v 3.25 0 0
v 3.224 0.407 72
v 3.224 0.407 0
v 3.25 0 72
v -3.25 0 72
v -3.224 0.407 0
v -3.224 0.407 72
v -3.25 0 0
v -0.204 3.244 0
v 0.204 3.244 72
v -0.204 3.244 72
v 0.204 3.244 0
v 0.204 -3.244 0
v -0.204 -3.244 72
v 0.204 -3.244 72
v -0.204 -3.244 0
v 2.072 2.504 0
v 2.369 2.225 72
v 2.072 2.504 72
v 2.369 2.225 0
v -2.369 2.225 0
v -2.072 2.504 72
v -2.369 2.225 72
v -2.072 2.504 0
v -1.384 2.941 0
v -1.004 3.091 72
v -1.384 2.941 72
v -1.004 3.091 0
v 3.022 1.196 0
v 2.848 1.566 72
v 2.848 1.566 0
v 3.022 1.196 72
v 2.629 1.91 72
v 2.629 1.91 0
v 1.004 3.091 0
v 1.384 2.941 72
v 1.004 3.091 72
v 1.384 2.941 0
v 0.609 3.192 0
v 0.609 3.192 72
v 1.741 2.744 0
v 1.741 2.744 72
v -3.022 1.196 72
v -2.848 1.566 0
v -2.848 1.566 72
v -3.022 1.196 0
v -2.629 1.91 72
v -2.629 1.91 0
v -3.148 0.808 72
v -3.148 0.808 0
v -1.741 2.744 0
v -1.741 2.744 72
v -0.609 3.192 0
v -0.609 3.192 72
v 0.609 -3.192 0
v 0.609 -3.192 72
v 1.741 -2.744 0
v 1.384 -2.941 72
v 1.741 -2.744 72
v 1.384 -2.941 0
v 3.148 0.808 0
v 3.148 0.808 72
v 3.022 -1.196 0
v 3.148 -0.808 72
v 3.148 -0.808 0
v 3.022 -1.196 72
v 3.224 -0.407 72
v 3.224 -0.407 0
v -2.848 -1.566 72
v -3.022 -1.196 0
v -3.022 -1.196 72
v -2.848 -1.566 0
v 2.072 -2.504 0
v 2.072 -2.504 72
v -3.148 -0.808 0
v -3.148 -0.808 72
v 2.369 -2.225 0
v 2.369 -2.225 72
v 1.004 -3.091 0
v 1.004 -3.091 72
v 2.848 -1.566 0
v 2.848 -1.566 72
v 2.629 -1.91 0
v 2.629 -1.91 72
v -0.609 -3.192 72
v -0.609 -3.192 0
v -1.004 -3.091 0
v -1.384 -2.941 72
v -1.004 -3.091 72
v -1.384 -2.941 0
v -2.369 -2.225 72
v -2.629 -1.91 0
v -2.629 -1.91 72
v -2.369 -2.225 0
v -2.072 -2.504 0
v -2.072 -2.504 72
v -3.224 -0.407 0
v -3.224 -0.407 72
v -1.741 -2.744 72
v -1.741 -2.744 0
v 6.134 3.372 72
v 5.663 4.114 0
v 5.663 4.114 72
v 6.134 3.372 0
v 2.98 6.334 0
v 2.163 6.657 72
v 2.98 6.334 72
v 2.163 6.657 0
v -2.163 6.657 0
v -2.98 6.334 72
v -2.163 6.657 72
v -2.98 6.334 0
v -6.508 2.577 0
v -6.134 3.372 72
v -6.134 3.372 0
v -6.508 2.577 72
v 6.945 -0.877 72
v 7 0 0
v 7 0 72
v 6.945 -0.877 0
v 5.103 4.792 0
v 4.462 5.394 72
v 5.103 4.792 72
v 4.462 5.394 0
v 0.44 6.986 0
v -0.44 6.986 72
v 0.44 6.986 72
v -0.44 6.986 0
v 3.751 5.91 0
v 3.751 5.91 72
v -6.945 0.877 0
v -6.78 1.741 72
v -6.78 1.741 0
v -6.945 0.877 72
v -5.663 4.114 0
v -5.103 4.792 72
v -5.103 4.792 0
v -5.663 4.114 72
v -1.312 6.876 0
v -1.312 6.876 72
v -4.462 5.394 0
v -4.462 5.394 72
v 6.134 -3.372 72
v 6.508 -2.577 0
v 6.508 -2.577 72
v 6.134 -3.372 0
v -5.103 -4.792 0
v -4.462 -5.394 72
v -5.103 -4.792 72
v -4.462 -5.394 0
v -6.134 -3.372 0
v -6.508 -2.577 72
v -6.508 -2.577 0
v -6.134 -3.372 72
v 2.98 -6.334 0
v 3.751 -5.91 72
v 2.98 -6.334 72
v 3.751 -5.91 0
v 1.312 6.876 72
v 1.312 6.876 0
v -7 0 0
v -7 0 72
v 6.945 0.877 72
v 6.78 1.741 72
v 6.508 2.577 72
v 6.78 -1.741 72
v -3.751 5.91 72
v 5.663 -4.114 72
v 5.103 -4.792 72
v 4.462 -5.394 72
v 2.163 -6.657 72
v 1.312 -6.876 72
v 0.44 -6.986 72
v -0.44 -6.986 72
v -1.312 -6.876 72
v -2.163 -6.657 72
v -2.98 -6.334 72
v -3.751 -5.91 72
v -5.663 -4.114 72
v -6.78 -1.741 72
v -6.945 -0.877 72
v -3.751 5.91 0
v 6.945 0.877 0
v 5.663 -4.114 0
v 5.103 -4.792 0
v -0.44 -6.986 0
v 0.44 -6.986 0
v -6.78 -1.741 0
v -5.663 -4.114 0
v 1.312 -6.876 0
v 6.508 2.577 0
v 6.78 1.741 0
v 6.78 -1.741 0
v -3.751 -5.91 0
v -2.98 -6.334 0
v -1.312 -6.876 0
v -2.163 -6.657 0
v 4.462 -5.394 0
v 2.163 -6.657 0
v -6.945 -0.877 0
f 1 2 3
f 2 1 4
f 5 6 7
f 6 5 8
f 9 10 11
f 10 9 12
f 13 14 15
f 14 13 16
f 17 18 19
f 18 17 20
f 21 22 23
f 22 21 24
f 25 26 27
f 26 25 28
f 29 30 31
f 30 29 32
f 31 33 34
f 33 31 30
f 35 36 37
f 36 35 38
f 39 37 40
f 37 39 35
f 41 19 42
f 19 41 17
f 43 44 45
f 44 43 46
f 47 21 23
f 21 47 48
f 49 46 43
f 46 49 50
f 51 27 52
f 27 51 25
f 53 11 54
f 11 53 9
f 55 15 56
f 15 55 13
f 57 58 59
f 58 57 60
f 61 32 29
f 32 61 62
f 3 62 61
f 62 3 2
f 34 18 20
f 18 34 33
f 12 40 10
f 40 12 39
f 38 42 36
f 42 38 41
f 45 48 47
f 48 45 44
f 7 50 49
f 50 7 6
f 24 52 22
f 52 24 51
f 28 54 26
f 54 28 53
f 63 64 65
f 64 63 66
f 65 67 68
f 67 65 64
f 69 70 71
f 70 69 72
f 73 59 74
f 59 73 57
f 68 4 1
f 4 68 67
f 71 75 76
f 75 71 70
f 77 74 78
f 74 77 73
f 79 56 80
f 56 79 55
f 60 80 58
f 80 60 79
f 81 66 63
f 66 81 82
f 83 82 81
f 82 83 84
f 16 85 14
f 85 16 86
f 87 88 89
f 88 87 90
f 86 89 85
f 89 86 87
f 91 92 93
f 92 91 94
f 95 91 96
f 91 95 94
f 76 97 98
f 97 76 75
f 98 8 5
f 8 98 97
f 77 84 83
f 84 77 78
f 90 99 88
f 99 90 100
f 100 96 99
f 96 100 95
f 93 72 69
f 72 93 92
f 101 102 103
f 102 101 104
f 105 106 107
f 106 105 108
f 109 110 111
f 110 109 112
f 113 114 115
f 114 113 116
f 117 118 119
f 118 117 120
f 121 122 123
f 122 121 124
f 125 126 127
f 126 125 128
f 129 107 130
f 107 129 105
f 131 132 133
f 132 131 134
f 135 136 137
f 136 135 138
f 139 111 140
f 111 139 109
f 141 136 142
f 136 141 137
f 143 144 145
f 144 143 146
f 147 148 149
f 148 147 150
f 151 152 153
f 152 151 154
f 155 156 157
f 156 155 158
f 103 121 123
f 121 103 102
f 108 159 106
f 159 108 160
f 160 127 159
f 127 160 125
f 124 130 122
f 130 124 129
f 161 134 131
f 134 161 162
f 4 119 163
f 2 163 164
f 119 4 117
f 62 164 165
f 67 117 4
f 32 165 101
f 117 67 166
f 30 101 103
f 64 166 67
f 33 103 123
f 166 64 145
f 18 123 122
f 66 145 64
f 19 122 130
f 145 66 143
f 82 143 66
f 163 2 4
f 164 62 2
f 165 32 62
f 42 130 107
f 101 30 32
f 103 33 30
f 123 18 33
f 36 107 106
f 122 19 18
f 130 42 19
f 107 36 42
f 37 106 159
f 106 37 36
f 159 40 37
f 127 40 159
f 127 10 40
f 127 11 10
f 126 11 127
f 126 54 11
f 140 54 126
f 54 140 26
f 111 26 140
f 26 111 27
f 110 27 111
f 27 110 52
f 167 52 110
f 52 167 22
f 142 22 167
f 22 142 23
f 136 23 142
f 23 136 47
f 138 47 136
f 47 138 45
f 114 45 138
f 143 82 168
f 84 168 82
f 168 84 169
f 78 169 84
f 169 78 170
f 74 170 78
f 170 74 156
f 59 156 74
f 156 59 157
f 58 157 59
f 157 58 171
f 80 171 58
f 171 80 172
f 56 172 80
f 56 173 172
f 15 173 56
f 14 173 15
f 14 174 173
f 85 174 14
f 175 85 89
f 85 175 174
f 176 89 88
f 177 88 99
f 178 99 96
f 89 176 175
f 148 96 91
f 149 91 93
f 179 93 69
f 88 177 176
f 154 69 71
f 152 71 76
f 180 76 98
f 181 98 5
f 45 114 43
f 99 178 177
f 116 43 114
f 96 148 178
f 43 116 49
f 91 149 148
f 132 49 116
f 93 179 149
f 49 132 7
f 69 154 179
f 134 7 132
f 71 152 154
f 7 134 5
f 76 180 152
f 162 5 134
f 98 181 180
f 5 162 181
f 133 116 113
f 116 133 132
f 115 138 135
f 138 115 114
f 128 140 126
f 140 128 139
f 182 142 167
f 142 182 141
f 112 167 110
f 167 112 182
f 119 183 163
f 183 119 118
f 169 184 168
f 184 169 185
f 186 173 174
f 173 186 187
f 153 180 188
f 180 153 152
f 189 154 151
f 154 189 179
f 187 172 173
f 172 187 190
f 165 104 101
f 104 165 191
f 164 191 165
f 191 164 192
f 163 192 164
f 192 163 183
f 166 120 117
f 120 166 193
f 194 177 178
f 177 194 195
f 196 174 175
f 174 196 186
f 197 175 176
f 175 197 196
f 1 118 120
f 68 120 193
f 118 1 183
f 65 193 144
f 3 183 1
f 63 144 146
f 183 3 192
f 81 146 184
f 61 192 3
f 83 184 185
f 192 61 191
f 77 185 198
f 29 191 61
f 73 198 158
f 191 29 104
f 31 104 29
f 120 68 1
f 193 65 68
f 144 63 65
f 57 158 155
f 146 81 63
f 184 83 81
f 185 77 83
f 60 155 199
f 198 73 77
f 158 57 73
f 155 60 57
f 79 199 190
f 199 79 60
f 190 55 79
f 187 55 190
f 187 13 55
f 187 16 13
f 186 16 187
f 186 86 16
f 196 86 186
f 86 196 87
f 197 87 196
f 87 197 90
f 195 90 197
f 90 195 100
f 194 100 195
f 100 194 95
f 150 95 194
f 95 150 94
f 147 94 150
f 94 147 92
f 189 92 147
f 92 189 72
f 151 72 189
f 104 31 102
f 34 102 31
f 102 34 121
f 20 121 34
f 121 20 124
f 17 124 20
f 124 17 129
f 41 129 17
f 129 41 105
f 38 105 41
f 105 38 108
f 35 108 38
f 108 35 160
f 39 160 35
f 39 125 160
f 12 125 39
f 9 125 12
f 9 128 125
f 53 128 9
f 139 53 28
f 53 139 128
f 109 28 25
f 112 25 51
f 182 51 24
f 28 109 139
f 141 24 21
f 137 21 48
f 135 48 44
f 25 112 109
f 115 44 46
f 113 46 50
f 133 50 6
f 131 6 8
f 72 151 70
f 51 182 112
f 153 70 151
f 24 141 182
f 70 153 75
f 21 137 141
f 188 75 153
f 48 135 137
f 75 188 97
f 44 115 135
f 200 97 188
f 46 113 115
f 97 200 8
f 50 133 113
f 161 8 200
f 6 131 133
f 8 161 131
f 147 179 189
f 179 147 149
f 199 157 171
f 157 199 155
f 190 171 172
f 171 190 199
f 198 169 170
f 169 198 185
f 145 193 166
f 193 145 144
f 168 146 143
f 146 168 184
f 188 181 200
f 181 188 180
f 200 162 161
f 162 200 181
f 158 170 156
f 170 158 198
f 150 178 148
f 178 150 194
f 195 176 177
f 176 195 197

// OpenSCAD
$fn = 50;


difference() {
	union() {
		cylinder(h = 72, r = 7.0000000000);
	}
	union() {
		translate(v = [0, 0, -100]) {
			cylinder(h = 200, r = 3.2500000000);
		}
		translate(v = [0, 0, -100]) {
			cylinder(h = 200, r = 1.8000000000);
		}
	}
}
